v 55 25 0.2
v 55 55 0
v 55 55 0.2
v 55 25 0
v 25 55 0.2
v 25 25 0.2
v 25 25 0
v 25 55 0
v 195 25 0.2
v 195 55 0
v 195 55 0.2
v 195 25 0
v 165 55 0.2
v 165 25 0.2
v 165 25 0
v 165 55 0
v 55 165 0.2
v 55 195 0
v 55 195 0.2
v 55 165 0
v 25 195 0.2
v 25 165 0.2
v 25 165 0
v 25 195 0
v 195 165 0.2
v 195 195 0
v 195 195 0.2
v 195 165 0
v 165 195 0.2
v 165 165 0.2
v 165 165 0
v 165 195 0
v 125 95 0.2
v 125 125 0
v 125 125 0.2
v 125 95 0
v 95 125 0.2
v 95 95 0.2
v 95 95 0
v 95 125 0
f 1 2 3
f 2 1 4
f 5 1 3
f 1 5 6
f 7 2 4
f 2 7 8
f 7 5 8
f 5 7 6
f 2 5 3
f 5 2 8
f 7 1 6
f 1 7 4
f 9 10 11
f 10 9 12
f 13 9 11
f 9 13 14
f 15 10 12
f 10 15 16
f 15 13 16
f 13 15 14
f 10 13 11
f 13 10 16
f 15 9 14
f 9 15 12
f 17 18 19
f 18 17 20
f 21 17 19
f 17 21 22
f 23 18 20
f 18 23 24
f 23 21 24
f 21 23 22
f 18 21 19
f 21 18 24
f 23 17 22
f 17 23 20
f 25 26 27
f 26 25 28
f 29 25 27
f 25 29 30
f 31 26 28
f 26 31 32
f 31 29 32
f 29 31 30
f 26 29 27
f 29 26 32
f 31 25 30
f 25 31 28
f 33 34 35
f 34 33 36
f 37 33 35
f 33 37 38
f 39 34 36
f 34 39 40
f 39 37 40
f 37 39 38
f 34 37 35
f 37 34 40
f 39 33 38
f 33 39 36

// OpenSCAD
// First-layer test for the Ender-3 V3 SE (220 x 220 bed).
// Five flat squares, one layer thick (0.2 mm): four near the corners and one
// in the middle. Watch them print: every square should come out as a smooth,
// flat, joined sheet. Round separate lines = nozzle too high (lower Z offset);
// thin, see-through or scraped = too low; good in some squares but not others
// = bed not level (run auto-levelling again) or dirty in those spots.

size  = 30;   // square size, mm
layer = 0.2;  // one layer
margin = 25;  // distance from the bed edge
bed   = 220;

for (p = [[margin, margin], [bed - margin - size, margin],
          [margin, bed - margin - size], [bed - margin - size, bed - margin - size],
          [(bed - size) / 2, (bed - size) / 2]])
  translate([p[0], p[1], 0]) cube([size, size, layer]);
